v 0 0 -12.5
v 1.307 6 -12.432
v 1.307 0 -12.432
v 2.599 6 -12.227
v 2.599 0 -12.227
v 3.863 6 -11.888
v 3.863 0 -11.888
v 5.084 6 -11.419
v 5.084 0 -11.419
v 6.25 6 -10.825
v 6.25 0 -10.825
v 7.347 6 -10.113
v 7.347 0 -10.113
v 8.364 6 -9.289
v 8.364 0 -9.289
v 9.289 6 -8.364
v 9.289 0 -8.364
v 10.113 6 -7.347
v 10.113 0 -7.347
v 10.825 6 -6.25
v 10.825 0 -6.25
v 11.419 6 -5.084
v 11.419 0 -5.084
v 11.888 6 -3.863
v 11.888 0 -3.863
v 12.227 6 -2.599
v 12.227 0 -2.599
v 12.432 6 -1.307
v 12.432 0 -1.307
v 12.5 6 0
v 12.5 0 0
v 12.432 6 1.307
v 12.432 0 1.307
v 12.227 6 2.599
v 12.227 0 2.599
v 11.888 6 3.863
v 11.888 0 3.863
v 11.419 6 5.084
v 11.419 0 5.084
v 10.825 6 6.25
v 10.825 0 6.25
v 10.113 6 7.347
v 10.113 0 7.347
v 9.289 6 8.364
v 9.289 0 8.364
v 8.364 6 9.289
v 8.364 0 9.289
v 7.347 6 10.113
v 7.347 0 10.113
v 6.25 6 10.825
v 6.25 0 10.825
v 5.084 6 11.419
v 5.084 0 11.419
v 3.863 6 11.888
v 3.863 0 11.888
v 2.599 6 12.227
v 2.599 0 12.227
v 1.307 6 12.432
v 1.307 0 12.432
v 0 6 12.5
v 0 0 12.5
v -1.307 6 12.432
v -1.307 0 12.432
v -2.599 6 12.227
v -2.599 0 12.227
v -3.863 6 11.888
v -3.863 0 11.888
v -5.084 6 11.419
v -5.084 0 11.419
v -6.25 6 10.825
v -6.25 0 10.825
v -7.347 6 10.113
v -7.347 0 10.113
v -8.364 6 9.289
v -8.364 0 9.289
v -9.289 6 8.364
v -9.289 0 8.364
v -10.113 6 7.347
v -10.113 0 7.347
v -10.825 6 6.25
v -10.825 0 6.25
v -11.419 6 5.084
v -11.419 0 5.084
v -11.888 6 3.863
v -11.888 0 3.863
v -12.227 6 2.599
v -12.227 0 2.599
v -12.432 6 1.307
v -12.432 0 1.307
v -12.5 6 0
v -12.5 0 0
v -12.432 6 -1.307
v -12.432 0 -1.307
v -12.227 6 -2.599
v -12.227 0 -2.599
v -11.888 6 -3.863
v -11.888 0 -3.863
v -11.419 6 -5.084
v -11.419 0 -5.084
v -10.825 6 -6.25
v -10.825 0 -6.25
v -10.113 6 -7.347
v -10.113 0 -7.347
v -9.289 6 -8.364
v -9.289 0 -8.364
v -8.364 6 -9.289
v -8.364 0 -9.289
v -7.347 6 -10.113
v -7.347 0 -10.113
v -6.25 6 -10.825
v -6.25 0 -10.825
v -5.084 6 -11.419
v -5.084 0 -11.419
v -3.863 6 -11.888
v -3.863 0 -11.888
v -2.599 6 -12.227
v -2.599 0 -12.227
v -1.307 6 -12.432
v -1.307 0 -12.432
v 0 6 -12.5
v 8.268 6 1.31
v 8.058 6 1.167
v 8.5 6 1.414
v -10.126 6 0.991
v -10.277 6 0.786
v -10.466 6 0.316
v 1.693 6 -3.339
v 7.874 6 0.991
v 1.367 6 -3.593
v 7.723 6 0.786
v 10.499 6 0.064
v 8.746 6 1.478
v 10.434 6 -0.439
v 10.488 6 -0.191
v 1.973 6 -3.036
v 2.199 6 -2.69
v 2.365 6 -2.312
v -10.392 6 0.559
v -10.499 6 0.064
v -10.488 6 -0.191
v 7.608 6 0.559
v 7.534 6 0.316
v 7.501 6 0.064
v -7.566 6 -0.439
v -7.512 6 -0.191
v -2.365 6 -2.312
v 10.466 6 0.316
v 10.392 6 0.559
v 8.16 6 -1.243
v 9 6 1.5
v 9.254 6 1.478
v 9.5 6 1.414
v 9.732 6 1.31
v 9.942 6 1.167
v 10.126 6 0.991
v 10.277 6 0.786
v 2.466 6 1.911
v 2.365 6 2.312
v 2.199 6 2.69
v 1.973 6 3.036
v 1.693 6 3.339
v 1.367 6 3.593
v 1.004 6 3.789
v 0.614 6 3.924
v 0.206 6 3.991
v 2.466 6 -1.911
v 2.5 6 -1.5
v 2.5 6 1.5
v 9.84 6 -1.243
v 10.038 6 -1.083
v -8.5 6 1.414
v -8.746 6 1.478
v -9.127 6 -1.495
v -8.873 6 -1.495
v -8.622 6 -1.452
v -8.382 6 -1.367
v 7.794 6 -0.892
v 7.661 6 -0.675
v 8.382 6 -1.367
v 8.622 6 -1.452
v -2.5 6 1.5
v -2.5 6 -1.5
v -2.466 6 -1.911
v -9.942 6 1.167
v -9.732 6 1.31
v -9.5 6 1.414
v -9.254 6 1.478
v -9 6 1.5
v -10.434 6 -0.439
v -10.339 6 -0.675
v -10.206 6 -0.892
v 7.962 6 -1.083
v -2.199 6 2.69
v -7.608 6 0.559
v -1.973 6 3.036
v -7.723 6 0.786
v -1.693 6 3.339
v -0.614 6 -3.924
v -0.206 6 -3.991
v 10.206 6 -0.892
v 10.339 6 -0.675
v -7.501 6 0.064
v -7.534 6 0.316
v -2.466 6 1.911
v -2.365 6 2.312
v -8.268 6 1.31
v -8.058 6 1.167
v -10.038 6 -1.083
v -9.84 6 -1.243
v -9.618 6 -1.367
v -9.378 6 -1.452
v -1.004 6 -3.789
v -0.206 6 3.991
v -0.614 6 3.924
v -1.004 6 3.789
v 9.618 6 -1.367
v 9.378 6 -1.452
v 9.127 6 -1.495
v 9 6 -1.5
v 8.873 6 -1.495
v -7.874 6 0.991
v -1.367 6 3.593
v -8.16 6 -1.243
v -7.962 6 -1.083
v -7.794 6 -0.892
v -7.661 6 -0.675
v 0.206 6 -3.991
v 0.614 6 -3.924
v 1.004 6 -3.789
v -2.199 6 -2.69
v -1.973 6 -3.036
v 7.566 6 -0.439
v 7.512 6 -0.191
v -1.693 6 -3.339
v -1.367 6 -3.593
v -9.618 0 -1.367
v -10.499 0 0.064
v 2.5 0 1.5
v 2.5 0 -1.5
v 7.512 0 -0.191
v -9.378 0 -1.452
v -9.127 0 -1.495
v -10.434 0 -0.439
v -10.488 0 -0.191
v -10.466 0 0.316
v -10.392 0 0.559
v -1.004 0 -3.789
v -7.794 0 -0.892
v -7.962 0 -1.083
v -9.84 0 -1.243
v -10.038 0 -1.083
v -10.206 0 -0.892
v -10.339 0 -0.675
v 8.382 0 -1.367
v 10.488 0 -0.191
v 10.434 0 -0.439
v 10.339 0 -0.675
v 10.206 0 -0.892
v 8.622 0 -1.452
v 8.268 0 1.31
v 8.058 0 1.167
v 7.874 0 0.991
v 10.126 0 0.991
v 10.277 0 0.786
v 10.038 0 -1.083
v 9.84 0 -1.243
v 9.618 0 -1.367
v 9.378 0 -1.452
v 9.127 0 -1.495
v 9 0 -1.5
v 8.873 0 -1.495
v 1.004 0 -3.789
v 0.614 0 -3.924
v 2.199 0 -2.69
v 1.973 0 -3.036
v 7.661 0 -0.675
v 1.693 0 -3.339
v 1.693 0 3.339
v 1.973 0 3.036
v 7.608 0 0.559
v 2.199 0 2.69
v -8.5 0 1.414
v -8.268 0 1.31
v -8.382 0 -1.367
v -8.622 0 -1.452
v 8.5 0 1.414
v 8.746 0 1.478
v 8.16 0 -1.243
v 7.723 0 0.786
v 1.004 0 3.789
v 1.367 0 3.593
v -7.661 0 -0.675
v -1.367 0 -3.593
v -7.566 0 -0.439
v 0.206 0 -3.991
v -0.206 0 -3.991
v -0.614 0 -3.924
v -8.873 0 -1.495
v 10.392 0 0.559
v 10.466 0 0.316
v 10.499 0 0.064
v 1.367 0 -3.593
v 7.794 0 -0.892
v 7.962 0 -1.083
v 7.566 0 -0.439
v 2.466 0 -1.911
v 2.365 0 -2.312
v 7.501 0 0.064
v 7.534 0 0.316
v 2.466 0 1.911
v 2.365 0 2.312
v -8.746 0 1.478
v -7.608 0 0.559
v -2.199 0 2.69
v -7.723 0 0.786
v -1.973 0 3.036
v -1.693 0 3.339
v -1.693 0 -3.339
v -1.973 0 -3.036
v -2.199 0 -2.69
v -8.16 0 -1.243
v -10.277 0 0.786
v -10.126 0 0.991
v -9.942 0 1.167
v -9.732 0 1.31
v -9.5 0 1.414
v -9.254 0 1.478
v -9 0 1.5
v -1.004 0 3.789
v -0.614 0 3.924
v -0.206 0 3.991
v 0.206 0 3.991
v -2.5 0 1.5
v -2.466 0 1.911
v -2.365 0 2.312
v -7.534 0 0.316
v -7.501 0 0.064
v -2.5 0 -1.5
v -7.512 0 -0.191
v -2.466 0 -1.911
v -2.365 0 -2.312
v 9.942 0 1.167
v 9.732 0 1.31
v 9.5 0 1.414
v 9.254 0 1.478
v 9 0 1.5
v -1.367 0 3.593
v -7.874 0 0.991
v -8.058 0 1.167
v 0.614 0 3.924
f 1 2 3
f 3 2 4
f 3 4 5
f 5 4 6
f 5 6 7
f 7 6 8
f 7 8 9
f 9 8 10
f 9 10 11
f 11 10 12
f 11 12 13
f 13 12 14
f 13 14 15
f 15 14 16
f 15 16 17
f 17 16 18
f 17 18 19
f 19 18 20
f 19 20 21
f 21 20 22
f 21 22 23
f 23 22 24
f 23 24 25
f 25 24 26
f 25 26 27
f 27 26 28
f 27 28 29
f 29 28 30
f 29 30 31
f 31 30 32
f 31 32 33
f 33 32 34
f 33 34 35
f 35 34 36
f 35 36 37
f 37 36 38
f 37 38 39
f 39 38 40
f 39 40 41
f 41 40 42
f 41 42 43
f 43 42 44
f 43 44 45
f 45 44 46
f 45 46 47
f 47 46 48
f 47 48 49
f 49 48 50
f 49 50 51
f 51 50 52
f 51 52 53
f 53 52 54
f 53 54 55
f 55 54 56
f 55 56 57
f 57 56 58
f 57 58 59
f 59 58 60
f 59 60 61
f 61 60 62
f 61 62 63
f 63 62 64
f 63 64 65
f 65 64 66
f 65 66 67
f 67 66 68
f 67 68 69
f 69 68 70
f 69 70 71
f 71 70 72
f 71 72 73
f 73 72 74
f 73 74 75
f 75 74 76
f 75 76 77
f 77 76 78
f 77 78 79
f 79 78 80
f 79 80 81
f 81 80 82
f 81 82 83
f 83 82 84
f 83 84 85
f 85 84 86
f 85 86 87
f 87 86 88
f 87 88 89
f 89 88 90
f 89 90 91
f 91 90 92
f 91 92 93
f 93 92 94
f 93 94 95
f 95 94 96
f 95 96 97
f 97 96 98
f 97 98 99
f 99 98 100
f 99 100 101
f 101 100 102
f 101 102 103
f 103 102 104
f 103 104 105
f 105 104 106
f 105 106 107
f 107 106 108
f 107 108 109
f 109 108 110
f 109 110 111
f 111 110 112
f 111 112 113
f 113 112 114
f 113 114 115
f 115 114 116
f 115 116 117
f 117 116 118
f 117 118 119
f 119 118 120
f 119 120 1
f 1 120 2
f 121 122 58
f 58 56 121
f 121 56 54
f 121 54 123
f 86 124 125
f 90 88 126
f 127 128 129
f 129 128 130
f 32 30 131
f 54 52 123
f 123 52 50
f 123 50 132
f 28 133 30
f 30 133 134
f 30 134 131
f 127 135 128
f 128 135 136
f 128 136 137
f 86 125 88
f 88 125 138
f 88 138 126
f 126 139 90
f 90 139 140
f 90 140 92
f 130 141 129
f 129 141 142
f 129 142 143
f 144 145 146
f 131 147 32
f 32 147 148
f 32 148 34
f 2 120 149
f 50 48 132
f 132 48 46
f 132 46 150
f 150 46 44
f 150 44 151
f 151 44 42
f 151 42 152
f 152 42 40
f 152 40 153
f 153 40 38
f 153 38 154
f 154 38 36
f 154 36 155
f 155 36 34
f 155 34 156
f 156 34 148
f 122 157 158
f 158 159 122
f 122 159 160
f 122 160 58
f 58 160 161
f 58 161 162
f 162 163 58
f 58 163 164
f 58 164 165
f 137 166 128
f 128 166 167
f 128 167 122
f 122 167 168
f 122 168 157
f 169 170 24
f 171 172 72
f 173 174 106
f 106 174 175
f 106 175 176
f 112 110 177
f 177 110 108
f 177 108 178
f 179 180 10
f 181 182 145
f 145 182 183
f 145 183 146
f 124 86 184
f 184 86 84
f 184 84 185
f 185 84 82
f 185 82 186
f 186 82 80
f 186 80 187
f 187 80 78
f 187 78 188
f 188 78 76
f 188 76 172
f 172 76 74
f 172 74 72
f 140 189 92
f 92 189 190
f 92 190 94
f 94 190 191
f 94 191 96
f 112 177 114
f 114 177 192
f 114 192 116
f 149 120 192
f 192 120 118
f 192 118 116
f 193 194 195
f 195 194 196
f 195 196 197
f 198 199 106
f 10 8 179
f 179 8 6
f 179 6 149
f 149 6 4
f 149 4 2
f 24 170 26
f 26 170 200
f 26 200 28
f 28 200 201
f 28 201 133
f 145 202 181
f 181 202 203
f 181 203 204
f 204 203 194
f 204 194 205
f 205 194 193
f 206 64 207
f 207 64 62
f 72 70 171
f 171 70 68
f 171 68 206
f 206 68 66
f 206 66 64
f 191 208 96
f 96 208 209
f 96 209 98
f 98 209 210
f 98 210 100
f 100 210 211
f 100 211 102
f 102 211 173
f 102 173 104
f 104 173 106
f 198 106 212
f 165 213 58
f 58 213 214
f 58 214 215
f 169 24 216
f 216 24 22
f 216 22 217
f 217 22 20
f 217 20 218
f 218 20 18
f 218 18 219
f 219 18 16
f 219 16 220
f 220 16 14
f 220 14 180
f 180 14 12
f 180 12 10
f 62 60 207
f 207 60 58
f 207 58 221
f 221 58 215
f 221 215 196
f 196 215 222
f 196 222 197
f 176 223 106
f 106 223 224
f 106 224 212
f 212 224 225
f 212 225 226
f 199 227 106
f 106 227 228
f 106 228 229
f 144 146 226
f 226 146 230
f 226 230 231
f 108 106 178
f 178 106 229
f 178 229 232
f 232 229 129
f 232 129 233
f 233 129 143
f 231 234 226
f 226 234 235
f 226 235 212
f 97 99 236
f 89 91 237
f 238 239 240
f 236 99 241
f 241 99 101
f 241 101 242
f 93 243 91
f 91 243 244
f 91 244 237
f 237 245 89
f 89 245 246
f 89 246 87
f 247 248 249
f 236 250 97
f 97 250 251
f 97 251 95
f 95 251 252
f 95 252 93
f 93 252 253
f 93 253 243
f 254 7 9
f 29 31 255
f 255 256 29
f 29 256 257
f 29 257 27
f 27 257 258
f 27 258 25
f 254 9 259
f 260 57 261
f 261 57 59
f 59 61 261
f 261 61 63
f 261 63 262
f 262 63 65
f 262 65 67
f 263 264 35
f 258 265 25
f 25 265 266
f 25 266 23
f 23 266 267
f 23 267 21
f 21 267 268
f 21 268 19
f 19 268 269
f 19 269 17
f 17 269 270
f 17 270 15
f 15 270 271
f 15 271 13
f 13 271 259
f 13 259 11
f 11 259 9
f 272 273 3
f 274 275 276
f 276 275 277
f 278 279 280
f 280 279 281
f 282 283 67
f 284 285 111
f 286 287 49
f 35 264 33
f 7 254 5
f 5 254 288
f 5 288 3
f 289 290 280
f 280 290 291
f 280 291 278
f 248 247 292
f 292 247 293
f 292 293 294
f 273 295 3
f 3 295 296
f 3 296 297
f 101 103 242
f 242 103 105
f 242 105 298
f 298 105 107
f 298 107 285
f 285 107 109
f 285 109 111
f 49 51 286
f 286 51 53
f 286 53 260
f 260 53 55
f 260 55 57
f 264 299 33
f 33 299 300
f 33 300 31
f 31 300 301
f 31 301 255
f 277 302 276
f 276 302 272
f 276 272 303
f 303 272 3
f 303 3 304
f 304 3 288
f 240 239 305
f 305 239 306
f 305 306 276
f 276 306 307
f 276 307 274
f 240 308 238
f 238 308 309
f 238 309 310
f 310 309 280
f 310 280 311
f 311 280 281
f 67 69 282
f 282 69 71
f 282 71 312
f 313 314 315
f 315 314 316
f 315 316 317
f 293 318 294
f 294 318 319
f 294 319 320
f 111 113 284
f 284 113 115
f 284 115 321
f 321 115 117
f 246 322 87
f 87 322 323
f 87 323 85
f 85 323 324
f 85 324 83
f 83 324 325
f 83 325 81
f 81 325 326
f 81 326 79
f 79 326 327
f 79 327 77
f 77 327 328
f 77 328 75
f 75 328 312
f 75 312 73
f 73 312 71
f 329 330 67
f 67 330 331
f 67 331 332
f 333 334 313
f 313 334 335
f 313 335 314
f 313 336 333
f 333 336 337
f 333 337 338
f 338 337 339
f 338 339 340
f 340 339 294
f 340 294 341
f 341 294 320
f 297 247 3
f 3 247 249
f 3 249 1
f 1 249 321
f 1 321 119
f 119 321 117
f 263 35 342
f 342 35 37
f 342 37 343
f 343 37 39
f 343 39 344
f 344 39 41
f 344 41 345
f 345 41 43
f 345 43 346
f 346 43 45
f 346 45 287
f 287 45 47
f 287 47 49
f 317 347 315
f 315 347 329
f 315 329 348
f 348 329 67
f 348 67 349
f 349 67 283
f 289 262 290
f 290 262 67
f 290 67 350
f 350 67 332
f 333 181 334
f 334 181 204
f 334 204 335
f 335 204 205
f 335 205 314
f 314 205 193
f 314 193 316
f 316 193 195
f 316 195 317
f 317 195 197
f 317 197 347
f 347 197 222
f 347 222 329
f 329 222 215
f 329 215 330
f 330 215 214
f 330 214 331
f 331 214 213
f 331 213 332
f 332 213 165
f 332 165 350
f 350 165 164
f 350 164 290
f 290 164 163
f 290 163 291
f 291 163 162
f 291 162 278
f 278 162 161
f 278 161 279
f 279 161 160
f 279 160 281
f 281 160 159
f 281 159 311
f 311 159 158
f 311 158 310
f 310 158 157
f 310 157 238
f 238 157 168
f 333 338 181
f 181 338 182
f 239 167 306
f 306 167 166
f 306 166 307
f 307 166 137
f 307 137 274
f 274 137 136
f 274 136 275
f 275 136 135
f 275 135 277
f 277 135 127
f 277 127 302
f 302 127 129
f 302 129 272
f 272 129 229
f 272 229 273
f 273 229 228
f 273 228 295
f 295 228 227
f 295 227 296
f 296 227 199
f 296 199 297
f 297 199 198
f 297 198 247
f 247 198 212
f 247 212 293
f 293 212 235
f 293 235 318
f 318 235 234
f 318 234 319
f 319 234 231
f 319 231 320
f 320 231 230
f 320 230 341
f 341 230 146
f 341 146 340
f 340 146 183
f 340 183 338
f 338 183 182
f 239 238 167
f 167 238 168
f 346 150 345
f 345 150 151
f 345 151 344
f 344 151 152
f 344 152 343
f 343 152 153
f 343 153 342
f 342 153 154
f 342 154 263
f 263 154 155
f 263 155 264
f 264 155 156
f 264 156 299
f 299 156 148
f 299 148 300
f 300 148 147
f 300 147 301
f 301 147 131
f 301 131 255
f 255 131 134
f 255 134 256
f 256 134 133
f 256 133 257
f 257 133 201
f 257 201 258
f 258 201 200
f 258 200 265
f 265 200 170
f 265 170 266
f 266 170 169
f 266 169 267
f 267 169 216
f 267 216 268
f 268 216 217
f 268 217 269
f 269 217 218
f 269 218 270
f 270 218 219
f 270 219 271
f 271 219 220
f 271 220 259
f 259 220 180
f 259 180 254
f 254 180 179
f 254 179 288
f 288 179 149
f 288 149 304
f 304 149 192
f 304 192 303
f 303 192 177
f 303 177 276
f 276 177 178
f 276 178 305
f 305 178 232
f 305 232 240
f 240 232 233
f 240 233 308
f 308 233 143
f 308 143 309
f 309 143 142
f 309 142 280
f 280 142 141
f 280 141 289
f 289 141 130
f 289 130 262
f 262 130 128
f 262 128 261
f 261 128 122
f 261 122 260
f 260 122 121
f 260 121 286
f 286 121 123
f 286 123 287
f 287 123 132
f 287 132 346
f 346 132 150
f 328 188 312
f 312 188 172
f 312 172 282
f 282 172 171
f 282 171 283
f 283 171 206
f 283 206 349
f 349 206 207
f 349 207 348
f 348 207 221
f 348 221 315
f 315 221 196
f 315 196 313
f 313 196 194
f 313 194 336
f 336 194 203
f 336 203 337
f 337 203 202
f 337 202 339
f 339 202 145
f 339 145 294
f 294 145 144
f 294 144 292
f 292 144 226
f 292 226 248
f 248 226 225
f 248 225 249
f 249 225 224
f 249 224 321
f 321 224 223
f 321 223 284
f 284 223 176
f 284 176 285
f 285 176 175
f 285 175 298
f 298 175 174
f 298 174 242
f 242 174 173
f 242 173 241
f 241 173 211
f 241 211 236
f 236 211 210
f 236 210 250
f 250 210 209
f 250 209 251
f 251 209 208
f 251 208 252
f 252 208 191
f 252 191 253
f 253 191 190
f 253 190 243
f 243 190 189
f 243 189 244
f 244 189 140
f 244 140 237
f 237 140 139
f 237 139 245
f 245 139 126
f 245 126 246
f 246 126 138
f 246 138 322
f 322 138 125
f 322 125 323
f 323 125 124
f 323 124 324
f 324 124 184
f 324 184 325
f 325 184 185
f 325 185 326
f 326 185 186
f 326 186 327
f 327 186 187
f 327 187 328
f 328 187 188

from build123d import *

# Parameters (mm, degrees)
SKETCH1_R           = 12.5
BOSS_EXTRUDE1_DEPTH = 6
CUT_EXTRUDE1_DEPTH  = 19.668154703
SKETCH3_R           = 1.5
CUT_EXTRUDE2_DEPTH  = 19.668154703


with BuildPart() as part:
    # Sketch1 → Boss-Extrude1 (new body)
    with BuildSketch(Plane(origin=(0, 0, 0), x_dir=(1, 0, 0), z_dir=(0, 1, 0))):
        with Locations(Location((0, 0, 0), (0, 0, 270))):
            Circle(SKETCH1_R)
    extrude(amount=BOSS_EXTRUDE1_DEPTH)

    # Sketch2 → Cut-Extrude1 (cut, through all)
    with BuildSketch(Plane(origin=(0, 6, 0), x_dir=(1, 0, 0), z_dir=(0, 1, 0))):
        with BuildLine():
            Line((-2.5, -1.5), (-2.5, 1.5))
            ThreePointArc((-2.5, 1.5), (0, 4), (2.5, 1.5))
            Line((2.5, 1.5), (2.5, -1.5))
            ThreePointArc((2.5, -1.5), (0, -4), (-2.5, -1.5))
        make_face()
    extrude(amount=-CUT_EXTRUDE1_DEPTH, mode=Mode.SUBTRACT)

    # Sketch3 → Cut-Extrude2 (cut, through all)
    with BuildSketch(Plane(origin=(0, 6, 0), x_dir=(1, 0, 0), z_dir=(0, 1, 0))):
        with Locations(Location((-9, 0, 0), (0, 0, 270))):
            Circle(SKETCH3_R)
        with Locations(Location((9, 0, 0), (0, 0, 90))):
            Circle(SKETCH3_R)
    extrude(amount=-CUT_EXTRUDE2_DEPTH, mode=Mode.SUBTRACT)


solid = part.part
